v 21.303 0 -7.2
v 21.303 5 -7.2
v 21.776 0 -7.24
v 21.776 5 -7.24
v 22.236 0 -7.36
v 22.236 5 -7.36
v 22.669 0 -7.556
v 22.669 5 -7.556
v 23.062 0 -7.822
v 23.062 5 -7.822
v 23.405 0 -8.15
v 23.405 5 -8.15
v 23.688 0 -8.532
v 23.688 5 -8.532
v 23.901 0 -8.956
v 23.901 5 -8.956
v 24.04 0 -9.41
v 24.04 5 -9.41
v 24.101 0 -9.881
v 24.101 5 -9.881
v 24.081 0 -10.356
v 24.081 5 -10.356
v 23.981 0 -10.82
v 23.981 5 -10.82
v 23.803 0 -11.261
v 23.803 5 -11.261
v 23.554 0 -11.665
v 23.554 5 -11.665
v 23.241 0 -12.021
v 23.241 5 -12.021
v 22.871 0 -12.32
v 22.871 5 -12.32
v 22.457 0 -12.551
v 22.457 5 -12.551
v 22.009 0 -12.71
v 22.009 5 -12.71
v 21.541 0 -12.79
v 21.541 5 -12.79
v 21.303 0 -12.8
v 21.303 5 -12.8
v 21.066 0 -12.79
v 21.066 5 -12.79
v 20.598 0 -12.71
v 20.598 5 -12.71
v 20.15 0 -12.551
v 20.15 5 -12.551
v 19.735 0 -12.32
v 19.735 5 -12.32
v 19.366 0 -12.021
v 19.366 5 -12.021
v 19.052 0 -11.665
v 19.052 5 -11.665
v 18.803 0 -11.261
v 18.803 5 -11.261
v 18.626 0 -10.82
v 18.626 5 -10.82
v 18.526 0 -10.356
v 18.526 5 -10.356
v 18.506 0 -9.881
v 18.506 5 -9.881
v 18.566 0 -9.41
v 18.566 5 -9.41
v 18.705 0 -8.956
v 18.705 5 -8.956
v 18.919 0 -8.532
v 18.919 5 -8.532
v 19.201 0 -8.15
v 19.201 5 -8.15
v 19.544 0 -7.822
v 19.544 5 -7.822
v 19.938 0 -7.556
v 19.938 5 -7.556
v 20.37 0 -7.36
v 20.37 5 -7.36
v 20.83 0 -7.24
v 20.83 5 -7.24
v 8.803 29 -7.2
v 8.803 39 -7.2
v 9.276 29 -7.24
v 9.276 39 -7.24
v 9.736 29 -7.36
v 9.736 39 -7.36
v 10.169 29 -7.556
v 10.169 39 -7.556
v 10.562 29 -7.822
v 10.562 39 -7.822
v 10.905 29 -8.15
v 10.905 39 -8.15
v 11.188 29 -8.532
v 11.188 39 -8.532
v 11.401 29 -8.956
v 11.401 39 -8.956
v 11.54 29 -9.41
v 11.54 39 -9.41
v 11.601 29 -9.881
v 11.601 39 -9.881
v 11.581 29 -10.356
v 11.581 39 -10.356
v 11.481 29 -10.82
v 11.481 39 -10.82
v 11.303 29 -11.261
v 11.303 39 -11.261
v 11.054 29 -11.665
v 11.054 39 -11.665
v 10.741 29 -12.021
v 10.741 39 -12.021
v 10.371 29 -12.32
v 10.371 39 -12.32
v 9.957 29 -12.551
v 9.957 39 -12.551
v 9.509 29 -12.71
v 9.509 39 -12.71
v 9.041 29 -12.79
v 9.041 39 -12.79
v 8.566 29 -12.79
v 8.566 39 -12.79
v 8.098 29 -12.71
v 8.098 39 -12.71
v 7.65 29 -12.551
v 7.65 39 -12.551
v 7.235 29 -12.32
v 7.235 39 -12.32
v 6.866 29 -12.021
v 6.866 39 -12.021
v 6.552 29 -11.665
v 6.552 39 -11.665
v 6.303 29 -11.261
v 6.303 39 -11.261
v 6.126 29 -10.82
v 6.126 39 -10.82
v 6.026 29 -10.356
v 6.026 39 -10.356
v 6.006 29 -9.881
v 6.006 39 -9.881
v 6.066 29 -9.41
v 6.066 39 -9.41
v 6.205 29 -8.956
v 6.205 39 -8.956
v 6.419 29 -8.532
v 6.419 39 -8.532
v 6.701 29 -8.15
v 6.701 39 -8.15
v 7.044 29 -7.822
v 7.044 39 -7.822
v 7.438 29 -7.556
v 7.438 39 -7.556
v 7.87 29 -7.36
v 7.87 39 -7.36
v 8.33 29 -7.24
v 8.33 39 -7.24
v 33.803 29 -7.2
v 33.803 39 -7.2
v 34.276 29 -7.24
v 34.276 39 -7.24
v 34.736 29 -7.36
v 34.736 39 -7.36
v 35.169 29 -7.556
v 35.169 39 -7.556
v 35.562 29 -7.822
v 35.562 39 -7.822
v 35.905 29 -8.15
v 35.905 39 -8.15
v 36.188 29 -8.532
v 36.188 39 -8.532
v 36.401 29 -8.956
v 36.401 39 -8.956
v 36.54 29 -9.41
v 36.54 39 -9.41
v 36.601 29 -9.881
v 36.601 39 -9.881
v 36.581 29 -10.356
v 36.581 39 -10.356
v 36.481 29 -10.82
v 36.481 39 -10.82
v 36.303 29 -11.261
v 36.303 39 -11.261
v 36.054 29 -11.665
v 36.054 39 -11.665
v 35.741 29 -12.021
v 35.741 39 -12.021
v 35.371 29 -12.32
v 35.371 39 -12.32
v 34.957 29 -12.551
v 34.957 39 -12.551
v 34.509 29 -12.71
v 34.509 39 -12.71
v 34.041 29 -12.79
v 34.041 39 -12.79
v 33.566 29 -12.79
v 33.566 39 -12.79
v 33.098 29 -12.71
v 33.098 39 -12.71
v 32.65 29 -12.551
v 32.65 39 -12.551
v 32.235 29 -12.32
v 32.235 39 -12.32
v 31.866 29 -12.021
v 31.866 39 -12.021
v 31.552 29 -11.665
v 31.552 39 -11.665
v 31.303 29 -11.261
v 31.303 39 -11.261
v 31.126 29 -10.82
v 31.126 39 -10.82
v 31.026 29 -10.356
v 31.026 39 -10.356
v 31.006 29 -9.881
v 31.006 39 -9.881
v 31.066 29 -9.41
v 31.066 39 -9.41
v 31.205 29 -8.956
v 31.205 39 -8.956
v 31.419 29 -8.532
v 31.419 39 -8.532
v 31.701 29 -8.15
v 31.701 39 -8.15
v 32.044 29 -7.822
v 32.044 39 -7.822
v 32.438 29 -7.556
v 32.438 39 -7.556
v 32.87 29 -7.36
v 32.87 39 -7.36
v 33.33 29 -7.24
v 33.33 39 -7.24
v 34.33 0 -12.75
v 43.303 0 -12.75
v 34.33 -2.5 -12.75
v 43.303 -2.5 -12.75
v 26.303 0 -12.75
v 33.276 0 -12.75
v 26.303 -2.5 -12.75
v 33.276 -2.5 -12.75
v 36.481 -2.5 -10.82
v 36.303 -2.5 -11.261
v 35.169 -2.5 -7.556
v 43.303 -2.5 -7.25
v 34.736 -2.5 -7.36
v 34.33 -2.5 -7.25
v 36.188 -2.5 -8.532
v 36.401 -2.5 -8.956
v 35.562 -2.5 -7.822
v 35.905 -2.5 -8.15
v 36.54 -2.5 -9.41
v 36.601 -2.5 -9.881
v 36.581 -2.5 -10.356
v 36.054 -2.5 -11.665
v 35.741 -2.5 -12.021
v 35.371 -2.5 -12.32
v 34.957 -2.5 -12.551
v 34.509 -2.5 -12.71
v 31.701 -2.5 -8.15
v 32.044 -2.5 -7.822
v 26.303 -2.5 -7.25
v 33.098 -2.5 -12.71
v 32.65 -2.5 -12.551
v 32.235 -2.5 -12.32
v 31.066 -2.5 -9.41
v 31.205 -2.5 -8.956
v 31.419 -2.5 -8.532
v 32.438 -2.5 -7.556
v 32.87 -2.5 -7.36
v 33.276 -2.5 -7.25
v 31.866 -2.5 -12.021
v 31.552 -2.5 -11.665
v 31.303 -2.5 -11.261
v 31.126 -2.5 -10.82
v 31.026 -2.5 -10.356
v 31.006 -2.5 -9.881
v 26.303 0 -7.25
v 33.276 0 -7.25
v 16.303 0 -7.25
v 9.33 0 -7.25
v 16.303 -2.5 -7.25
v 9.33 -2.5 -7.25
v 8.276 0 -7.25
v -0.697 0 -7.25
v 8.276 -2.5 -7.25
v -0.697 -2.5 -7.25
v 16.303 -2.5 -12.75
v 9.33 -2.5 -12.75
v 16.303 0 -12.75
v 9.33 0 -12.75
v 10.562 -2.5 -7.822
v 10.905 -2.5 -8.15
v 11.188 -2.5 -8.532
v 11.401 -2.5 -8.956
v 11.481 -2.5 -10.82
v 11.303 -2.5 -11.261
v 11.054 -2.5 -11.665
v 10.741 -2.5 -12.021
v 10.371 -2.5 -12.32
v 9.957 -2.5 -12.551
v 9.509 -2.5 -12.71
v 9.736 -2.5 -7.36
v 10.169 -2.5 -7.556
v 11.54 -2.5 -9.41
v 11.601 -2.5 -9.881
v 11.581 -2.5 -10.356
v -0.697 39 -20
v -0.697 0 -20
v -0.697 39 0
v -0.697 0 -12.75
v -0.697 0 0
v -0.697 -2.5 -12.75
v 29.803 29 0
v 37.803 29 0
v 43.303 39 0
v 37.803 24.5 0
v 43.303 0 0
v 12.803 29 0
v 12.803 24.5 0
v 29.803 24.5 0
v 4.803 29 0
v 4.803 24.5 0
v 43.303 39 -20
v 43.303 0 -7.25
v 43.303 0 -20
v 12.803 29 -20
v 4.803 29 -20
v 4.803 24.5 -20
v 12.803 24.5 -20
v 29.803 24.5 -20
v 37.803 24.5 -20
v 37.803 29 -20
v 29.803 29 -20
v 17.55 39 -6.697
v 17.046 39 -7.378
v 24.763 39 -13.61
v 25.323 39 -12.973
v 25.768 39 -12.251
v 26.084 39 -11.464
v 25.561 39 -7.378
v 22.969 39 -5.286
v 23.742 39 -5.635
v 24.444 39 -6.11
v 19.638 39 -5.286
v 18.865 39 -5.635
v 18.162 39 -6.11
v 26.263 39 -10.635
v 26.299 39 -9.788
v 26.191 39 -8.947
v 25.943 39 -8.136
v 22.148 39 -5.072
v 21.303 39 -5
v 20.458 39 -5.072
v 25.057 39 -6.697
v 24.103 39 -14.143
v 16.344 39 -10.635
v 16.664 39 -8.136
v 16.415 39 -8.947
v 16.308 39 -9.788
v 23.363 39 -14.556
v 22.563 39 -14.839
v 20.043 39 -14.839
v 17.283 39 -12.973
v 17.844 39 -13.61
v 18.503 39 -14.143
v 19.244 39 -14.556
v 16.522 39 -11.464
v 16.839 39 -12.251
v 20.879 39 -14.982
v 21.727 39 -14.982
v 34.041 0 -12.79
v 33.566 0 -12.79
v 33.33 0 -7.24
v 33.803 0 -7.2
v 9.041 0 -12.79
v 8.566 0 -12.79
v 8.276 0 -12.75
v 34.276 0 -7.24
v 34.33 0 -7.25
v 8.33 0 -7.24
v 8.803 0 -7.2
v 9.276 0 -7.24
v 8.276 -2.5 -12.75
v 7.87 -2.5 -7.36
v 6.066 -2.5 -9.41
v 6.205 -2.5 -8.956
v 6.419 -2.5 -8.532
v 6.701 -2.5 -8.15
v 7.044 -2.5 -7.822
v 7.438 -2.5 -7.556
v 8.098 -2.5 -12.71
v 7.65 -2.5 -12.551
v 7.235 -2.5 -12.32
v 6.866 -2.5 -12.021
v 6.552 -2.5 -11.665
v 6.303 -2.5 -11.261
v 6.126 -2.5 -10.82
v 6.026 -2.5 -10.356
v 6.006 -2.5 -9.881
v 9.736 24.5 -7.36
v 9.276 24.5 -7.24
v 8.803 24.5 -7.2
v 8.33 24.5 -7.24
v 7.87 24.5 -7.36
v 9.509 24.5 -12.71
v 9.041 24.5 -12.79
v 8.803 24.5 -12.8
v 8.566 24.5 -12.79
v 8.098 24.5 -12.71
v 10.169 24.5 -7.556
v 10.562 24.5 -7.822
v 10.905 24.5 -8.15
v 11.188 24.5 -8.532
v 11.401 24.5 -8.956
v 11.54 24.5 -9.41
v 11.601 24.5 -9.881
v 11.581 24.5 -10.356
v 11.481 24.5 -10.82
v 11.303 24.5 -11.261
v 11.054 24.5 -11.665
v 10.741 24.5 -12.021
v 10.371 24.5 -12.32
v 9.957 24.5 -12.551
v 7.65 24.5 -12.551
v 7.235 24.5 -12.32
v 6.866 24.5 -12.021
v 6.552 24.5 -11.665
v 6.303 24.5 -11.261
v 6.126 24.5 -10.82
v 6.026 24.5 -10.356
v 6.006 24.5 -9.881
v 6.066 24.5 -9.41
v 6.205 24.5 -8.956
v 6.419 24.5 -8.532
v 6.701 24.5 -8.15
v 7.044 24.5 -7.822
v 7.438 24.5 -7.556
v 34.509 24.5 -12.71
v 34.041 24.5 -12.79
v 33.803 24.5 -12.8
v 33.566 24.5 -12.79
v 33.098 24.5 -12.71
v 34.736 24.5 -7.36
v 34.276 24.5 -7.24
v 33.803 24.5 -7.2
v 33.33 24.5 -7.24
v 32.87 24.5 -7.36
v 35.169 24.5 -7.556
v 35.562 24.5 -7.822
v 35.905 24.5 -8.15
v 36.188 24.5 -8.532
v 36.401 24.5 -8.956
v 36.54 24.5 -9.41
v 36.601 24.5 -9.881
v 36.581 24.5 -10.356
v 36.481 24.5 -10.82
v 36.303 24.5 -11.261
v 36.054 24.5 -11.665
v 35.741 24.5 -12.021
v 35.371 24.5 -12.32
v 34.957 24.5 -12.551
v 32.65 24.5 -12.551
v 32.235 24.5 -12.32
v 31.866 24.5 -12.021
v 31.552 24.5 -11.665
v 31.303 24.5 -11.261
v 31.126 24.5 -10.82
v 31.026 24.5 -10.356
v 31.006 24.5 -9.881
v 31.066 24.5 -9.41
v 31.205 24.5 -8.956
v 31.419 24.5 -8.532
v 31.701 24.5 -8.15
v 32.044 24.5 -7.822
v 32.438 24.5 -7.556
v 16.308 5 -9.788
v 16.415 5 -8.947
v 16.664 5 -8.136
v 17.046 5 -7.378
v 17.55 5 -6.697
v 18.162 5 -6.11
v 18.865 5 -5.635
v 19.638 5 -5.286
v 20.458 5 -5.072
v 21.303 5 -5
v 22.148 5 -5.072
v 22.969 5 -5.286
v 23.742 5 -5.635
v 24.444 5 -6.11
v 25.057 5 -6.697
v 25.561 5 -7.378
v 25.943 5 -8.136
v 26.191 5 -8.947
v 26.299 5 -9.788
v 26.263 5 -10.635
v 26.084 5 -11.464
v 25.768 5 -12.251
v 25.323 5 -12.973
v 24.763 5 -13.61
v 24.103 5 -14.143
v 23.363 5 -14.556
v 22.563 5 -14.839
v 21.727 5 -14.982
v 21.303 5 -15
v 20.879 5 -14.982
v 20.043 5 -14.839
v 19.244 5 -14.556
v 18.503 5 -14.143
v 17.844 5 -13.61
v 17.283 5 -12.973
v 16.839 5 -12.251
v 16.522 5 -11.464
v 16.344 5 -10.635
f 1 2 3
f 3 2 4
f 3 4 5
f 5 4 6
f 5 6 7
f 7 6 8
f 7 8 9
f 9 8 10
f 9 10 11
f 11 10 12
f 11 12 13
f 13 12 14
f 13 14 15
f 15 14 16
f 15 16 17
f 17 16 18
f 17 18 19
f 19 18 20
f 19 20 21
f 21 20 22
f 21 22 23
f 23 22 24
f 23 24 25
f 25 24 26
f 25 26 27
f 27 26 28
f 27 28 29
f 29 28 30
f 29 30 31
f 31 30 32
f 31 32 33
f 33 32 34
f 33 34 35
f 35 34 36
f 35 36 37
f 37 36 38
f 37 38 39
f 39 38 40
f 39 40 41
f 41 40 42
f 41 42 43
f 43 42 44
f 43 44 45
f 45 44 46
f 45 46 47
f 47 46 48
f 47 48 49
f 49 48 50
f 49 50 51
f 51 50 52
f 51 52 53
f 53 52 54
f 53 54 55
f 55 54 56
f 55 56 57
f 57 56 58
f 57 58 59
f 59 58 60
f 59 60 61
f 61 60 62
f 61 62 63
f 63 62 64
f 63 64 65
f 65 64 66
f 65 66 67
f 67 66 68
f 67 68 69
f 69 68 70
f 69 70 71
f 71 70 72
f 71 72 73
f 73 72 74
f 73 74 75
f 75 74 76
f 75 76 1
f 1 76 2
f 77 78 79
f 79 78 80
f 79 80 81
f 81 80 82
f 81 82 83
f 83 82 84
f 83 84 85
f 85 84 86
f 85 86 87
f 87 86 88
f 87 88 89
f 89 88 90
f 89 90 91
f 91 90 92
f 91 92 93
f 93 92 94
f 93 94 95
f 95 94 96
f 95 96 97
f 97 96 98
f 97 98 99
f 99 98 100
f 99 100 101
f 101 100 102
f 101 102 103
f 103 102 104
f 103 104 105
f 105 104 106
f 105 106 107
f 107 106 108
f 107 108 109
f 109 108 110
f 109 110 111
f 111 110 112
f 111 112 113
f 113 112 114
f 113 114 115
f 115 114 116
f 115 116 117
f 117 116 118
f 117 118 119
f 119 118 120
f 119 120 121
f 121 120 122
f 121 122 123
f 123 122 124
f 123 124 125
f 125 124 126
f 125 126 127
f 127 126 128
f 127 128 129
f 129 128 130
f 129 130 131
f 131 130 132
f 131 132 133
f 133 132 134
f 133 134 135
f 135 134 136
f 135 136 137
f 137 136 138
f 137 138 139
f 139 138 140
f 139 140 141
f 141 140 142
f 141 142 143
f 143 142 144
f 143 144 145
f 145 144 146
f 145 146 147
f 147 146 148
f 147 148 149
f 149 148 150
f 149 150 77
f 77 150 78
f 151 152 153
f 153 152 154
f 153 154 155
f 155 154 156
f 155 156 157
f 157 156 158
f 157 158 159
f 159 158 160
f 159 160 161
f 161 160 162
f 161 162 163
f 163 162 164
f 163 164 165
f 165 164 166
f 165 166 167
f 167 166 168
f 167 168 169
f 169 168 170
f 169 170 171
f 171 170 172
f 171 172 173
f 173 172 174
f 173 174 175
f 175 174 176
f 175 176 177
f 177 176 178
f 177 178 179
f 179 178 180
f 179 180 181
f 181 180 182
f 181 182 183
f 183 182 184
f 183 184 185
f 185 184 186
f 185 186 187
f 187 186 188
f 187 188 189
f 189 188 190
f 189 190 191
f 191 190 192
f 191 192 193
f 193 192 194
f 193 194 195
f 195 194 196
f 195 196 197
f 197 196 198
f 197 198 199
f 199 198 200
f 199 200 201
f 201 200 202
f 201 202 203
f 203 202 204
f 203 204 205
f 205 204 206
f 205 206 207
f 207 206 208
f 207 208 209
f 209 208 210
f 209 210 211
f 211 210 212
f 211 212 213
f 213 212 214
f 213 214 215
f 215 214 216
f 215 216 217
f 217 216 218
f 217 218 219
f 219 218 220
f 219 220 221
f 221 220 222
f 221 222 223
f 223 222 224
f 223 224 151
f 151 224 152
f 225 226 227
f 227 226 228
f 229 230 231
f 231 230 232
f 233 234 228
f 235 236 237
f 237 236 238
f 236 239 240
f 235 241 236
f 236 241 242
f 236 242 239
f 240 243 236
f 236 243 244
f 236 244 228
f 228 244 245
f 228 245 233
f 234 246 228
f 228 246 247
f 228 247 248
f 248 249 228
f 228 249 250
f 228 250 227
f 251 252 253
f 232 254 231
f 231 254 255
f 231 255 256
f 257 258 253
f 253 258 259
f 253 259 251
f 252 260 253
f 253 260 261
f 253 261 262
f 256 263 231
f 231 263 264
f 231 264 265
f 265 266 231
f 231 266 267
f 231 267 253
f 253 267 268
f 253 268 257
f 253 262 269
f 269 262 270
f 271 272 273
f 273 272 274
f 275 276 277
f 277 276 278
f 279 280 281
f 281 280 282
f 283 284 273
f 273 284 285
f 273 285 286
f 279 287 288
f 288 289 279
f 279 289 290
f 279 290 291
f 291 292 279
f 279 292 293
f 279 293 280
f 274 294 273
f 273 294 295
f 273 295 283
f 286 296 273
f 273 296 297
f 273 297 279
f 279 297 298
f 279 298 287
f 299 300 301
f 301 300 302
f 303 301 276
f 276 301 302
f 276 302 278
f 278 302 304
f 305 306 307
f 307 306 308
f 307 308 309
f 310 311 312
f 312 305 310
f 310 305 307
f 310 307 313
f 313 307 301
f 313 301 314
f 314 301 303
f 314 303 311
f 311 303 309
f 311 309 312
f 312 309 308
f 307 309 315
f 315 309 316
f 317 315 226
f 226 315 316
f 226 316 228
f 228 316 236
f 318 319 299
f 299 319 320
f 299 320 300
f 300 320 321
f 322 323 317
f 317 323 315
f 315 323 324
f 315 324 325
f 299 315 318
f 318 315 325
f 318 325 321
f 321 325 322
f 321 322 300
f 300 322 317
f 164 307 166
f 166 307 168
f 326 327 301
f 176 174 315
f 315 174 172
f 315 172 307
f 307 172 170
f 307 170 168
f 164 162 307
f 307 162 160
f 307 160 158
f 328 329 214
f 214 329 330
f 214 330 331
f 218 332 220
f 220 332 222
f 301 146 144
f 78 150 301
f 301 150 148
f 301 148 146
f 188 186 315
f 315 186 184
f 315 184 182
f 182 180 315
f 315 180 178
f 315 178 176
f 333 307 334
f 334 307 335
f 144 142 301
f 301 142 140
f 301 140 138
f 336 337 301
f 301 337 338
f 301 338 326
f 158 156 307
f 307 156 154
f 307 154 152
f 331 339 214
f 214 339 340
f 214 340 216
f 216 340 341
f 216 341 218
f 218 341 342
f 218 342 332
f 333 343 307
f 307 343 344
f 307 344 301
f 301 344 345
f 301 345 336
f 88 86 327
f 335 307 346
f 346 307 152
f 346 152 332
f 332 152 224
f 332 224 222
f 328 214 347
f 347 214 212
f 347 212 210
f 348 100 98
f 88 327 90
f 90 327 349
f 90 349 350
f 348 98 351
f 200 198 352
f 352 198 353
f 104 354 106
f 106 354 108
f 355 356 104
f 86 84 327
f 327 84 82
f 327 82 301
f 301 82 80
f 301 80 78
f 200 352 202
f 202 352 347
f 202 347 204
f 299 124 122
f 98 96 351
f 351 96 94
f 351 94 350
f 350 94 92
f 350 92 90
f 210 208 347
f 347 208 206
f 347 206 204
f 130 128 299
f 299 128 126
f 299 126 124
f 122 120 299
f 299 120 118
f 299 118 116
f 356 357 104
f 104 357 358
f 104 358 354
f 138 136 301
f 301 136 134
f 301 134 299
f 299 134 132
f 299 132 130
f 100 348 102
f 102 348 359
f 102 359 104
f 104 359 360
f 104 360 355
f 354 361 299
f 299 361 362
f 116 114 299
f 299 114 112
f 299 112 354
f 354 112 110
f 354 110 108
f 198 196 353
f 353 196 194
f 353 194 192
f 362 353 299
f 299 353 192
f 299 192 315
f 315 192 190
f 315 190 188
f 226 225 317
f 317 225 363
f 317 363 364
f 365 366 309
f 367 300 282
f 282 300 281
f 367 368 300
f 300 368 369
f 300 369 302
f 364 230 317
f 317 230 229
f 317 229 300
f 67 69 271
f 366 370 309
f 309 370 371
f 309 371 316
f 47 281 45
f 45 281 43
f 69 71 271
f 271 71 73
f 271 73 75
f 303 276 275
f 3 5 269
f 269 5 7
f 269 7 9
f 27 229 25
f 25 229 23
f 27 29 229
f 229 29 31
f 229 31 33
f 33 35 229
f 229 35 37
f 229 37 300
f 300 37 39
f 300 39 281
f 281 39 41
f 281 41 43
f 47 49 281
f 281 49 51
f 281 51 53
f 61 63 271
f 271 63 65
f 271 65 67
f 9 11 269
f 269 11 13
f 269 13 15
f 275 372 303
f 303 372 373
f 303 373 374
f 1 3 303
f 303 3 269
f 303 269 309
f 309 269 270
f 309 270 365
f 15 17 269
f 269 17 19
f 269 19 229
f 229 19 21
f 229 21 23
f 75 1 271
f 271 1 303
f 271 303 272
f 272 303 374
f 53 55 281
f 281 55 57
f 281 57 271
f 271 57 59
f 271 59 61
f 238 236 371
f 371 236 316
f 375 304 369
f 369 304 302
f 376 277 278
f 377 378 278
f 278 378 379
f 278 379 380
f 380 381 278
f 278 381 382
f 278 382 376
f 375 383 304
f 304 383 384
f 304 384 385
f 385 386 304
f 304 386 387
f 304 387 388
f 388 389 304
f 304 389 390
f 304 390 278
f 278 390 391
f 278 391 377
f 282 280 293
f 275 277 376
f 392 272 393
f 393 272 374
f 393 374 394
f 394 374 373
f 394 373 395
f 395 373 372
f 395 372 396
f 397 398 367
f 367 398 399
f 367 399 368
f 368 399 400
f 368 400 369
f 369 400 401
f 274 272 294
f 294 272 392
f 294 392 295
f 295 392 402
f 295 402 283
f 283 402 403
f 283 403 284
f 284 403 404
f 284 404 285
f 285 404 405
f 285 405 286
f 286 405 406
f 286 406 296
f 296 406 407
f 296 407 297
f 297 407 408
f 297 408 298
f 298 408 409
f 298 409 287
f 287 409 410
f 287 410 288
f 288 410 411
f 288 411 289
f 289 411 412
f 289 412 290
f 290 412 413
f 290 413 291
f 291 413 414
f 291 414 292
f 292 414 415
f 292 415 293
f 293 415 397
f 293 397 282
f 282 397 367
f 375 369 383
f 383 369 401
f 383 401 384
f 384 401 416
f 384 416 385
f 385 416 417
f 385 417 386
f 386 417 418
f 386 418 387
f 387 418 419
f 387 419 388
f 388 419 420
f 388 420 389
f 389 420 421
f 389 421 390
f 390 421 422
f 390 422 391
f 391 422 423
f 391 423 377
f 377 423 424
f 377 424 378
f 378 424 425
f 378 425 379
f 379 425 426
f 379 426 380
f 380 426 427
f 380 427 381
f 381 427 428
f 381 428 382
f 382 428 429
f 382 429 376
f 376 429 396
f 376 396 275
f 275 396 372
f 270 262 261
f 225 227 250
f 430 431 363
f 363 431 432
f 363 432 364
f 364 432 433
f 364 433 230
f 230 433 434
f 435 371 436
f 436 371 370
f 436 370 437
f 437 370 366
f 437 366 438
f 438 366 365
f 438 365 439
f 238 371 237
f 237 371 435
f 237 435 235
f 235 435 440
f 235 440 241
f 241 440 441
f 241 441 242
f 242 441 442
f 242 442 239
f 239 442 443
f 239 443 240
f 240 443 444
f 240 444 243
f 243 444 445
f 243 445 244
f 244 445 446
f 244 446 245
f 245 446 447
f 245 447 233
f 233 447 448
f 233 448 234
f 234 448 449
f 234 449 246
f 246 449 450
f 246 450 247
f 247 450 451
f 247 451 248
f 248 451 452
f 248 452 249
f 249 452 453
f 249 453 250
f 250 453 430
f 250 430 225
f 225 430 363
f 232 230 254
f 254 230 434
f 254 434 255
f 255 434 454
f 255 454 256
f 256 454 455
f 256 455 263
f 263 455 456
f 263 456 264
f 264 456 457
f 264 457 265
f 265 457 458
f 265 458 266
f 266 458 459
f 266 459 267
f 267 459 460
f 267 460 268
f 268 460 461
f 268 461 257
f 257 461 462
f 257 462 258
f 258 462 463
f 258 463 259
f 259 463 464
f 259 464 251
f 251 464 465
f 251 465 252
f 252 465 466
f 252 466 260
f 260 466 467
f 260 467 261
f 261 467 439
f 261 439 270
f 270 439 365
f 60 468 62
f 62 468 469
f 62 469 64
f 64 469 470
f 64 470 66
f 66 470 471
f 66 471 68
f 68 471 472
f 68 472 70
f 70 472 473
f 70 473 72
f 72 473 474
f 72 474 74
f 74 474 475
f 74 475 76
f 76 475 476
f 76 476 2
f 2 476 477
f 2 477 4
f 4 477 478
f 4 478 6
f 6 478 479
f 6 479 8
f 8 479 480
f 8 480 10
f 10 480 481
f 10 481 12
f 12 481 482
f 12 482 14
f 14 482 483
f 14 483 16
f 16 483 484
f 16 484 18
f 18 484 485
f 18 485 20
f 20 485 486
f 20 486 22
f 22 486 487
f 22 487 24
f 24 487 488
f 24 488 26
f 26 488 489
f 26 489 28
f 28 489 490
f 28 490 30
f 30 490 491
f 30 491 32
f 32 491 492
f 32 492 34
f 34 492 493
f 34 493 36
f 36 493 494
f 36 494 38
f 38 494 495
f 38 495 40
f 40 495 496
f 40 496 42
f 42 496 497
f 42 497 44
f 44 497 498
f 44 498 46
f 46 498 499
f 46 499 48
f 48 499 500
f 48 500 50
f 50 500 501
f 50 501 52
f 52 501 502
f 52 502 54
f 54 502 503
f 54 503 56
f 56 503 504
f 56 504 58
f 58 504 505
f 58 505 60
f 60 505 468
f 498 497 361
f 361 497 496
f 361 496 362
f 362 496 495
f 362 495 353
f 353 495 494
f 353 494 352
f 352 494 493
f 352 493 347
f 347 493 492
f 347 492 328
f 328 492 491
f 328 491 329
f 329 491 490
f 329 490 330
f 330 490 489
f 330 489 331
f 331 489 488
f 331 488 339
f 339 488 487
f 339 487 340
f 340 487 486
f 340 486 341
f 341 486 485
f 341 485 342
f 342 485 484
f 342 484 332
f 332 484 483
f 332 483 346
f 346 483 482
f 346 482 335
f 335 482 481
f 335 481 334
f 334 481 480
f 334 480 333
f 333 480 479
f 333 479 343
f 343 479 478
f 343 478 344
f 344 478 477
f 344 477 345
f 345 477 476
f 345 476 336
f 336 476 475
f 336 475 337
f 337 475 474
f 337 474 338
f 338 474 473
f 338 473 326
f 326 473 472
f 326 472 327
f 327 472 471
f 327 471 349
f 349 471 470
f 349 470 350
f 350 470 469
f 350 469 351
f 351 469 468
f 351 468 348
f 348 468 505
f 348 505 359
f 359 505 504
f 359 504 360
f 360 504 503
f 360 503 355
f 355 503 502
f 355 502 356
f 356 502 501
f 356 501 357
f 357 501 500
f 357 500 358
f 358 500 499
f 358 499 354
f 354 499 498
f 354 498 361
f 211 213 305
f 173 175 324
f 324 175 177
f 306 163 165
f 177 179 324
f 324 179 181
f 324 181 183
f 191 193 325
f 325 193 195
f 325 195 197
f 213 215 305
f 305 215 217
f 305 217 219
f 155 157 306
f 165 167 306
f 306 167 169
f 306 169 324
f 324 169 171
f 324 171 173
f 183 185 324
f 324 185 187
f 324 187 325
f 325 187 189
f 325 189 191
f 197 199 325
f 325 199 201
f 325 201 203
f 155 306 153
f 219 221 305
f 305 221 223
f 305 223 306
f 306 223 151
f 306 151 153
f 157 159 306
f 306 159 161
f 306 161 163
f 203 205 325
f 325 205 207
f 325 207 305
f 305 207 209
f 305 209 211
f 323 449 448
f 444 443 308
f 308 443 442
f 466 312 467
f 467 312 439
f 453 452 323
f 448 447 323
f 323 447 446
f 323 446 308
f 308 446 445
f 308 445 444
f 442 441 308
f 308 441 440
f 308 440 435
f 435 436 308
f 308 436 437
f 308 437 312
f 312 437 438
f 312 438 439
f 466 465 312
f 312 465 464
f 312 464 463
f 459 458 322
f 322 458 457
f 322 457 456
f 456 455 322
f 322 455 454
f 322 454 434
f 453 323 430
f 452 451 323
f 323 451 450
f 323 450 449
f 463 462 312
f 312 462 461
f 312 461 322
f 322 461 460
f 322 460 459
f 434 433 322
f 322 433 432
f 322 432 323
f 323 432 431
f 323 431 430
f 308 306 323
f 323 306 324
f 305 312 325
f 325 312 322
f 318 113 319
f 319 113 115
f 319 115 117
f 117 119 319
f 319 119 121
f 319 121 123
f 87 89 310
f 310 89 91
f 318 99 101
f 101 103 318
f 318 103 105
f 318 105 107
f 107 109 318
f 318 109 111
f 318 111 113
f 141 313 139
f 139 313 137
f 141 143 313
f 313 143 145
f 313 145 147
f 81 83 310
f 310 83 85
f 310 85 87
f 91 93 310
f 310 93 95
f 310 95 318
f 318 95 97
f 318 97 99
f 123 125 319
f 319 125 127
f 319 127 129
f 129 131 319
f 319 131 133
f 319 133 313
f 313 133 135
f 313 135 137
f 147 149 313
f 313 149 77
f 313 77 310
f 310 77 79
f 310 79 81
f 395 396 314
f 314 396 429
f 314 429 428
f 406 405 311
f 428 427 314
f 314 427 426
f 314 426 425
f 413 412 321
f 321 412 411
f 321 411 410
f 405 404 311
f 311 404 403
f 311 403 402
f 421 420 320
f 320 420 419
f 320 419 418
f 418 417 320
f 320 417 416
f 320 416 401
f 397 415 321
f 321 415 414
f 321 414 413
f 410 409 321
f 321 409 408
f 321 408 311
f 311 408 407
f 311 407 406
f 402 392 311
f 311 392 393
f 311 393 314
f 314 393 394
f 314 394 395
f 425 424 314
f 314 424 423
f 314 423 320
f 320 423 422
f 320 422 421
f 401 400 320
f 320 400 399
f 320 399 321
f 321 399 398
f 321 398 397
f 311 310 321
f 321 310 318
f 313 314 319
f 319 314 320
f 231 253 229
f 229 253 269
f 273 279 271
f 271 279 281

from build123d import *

# Parameters (mm, degrees)
SKETCH1_W           = 44
SKETCH1_H           = 20
BOSS_EXTRUDE1_DEPTH = 39
SKETCH3_W           = 44
SKETCH3_H           = 5.5
BOSS_EXTRUDE5_DEPTH = 2.5
SKETCH2_R           = 2.8
CUT_EXTRUDE1_DEPTH  = 42.5
SKETCH4_R           = 5
CUT_EXTRUDE2_DEPTH  = 34
SKETCH5_W           = 8
SKETCH5_H           = 4.5
CUT_EXTRUDE3_DEPTH  = 21
SKETCH6_W           = 10
SKETCH6_H           = 5.5
CUT_EXTRUDE4_DEPTH  = 2.5


with BuildPart() as part:
    # Sketch1 → Boss-Extrude1 (new body)
    with BuildSketch(Plane(origin=(0, 0, 0), x_dir=(1, 0, 0), z_dir=(0, 1, 0))):
        with Locations((21.30324178, 10)):
            Rectangle(SKETCH1_W, SKETCH1_H)
    extrude(amount=BOSS_EXTRUDE1_DEPTH)

    # Sketch3 → Boss-Extrude5 (add)
    with BuildSketch(Plane.XZ):
        with Locations((21.30324178, -10)):
            Rectangle(SKETCH3_W, SKETCH3_H)
    extrude(amount=BOSS_EXTRUDE5_DEPTH)

    # Sketch2 → Cut-Extrude1 (cut, through all)
    with BuildSketch(Plane(origin=(0, 39, 0), x_dir=(1, 0, 0), z_dir=(0, 1, 0))):
        with Locations((8.80324178, 10)):
            Circle(SKETCH2_R)
        with Locations((33.80324178, 10)):
            Circle(SKETCH2_R)
        with Locations((21.30324178, 10)):
            Circle(SKETCH2_R)
    extrude(amount=-CUT_EXTRUDE1_DEPTH, mode=Mode.SUBTRACT)

    # Sketch4 → Cut-Extrude2 (cut)
    with BuildSketch(Plane(origin=(0, 39, 0), x_dir=(1, 0, 0), z_dir=(0, 1, 0))):
        with Locations((21.30324178, 10)):
            Circle(SKETCH4_R)
    extrude(amount=-CUT_EXTRUDE2_DEPTH, mode=Mode.SUBTRACT)

    # Sketch5 → Cut-Extrude3 (cut, through all)
    with BuildSketch(Plane(origin=(0, 0, -20), x_dir=(-1, 0, 0), z_dir=(0, 0, -1))):
        with Locations((-33.80324178, 26.75)):
            Rectangle(SKETCH5_W, SKETCH5_H)
        with Locations((-8.80324178, 26.75)):
            Rectangle(SKETCH5_W, SKETCH5_H)
    extrude(amount=-CUT_EXTRUDE3_DEPTH, mode=Mode.SUBTRACT)

    # Sketch6 → Cut-Extrude4 (cut)
    with BuildSketch(Plane.XZ.offset(2.5)):
        with Locations((21.30324178, -10)):
            Rectangle(SKETCH6_W, SKETCH6_H)
    extrude(amount=-CUT_EXTRUDE4_DEPTH, mode=Mode.SUBTRACT)


solid = part.part
